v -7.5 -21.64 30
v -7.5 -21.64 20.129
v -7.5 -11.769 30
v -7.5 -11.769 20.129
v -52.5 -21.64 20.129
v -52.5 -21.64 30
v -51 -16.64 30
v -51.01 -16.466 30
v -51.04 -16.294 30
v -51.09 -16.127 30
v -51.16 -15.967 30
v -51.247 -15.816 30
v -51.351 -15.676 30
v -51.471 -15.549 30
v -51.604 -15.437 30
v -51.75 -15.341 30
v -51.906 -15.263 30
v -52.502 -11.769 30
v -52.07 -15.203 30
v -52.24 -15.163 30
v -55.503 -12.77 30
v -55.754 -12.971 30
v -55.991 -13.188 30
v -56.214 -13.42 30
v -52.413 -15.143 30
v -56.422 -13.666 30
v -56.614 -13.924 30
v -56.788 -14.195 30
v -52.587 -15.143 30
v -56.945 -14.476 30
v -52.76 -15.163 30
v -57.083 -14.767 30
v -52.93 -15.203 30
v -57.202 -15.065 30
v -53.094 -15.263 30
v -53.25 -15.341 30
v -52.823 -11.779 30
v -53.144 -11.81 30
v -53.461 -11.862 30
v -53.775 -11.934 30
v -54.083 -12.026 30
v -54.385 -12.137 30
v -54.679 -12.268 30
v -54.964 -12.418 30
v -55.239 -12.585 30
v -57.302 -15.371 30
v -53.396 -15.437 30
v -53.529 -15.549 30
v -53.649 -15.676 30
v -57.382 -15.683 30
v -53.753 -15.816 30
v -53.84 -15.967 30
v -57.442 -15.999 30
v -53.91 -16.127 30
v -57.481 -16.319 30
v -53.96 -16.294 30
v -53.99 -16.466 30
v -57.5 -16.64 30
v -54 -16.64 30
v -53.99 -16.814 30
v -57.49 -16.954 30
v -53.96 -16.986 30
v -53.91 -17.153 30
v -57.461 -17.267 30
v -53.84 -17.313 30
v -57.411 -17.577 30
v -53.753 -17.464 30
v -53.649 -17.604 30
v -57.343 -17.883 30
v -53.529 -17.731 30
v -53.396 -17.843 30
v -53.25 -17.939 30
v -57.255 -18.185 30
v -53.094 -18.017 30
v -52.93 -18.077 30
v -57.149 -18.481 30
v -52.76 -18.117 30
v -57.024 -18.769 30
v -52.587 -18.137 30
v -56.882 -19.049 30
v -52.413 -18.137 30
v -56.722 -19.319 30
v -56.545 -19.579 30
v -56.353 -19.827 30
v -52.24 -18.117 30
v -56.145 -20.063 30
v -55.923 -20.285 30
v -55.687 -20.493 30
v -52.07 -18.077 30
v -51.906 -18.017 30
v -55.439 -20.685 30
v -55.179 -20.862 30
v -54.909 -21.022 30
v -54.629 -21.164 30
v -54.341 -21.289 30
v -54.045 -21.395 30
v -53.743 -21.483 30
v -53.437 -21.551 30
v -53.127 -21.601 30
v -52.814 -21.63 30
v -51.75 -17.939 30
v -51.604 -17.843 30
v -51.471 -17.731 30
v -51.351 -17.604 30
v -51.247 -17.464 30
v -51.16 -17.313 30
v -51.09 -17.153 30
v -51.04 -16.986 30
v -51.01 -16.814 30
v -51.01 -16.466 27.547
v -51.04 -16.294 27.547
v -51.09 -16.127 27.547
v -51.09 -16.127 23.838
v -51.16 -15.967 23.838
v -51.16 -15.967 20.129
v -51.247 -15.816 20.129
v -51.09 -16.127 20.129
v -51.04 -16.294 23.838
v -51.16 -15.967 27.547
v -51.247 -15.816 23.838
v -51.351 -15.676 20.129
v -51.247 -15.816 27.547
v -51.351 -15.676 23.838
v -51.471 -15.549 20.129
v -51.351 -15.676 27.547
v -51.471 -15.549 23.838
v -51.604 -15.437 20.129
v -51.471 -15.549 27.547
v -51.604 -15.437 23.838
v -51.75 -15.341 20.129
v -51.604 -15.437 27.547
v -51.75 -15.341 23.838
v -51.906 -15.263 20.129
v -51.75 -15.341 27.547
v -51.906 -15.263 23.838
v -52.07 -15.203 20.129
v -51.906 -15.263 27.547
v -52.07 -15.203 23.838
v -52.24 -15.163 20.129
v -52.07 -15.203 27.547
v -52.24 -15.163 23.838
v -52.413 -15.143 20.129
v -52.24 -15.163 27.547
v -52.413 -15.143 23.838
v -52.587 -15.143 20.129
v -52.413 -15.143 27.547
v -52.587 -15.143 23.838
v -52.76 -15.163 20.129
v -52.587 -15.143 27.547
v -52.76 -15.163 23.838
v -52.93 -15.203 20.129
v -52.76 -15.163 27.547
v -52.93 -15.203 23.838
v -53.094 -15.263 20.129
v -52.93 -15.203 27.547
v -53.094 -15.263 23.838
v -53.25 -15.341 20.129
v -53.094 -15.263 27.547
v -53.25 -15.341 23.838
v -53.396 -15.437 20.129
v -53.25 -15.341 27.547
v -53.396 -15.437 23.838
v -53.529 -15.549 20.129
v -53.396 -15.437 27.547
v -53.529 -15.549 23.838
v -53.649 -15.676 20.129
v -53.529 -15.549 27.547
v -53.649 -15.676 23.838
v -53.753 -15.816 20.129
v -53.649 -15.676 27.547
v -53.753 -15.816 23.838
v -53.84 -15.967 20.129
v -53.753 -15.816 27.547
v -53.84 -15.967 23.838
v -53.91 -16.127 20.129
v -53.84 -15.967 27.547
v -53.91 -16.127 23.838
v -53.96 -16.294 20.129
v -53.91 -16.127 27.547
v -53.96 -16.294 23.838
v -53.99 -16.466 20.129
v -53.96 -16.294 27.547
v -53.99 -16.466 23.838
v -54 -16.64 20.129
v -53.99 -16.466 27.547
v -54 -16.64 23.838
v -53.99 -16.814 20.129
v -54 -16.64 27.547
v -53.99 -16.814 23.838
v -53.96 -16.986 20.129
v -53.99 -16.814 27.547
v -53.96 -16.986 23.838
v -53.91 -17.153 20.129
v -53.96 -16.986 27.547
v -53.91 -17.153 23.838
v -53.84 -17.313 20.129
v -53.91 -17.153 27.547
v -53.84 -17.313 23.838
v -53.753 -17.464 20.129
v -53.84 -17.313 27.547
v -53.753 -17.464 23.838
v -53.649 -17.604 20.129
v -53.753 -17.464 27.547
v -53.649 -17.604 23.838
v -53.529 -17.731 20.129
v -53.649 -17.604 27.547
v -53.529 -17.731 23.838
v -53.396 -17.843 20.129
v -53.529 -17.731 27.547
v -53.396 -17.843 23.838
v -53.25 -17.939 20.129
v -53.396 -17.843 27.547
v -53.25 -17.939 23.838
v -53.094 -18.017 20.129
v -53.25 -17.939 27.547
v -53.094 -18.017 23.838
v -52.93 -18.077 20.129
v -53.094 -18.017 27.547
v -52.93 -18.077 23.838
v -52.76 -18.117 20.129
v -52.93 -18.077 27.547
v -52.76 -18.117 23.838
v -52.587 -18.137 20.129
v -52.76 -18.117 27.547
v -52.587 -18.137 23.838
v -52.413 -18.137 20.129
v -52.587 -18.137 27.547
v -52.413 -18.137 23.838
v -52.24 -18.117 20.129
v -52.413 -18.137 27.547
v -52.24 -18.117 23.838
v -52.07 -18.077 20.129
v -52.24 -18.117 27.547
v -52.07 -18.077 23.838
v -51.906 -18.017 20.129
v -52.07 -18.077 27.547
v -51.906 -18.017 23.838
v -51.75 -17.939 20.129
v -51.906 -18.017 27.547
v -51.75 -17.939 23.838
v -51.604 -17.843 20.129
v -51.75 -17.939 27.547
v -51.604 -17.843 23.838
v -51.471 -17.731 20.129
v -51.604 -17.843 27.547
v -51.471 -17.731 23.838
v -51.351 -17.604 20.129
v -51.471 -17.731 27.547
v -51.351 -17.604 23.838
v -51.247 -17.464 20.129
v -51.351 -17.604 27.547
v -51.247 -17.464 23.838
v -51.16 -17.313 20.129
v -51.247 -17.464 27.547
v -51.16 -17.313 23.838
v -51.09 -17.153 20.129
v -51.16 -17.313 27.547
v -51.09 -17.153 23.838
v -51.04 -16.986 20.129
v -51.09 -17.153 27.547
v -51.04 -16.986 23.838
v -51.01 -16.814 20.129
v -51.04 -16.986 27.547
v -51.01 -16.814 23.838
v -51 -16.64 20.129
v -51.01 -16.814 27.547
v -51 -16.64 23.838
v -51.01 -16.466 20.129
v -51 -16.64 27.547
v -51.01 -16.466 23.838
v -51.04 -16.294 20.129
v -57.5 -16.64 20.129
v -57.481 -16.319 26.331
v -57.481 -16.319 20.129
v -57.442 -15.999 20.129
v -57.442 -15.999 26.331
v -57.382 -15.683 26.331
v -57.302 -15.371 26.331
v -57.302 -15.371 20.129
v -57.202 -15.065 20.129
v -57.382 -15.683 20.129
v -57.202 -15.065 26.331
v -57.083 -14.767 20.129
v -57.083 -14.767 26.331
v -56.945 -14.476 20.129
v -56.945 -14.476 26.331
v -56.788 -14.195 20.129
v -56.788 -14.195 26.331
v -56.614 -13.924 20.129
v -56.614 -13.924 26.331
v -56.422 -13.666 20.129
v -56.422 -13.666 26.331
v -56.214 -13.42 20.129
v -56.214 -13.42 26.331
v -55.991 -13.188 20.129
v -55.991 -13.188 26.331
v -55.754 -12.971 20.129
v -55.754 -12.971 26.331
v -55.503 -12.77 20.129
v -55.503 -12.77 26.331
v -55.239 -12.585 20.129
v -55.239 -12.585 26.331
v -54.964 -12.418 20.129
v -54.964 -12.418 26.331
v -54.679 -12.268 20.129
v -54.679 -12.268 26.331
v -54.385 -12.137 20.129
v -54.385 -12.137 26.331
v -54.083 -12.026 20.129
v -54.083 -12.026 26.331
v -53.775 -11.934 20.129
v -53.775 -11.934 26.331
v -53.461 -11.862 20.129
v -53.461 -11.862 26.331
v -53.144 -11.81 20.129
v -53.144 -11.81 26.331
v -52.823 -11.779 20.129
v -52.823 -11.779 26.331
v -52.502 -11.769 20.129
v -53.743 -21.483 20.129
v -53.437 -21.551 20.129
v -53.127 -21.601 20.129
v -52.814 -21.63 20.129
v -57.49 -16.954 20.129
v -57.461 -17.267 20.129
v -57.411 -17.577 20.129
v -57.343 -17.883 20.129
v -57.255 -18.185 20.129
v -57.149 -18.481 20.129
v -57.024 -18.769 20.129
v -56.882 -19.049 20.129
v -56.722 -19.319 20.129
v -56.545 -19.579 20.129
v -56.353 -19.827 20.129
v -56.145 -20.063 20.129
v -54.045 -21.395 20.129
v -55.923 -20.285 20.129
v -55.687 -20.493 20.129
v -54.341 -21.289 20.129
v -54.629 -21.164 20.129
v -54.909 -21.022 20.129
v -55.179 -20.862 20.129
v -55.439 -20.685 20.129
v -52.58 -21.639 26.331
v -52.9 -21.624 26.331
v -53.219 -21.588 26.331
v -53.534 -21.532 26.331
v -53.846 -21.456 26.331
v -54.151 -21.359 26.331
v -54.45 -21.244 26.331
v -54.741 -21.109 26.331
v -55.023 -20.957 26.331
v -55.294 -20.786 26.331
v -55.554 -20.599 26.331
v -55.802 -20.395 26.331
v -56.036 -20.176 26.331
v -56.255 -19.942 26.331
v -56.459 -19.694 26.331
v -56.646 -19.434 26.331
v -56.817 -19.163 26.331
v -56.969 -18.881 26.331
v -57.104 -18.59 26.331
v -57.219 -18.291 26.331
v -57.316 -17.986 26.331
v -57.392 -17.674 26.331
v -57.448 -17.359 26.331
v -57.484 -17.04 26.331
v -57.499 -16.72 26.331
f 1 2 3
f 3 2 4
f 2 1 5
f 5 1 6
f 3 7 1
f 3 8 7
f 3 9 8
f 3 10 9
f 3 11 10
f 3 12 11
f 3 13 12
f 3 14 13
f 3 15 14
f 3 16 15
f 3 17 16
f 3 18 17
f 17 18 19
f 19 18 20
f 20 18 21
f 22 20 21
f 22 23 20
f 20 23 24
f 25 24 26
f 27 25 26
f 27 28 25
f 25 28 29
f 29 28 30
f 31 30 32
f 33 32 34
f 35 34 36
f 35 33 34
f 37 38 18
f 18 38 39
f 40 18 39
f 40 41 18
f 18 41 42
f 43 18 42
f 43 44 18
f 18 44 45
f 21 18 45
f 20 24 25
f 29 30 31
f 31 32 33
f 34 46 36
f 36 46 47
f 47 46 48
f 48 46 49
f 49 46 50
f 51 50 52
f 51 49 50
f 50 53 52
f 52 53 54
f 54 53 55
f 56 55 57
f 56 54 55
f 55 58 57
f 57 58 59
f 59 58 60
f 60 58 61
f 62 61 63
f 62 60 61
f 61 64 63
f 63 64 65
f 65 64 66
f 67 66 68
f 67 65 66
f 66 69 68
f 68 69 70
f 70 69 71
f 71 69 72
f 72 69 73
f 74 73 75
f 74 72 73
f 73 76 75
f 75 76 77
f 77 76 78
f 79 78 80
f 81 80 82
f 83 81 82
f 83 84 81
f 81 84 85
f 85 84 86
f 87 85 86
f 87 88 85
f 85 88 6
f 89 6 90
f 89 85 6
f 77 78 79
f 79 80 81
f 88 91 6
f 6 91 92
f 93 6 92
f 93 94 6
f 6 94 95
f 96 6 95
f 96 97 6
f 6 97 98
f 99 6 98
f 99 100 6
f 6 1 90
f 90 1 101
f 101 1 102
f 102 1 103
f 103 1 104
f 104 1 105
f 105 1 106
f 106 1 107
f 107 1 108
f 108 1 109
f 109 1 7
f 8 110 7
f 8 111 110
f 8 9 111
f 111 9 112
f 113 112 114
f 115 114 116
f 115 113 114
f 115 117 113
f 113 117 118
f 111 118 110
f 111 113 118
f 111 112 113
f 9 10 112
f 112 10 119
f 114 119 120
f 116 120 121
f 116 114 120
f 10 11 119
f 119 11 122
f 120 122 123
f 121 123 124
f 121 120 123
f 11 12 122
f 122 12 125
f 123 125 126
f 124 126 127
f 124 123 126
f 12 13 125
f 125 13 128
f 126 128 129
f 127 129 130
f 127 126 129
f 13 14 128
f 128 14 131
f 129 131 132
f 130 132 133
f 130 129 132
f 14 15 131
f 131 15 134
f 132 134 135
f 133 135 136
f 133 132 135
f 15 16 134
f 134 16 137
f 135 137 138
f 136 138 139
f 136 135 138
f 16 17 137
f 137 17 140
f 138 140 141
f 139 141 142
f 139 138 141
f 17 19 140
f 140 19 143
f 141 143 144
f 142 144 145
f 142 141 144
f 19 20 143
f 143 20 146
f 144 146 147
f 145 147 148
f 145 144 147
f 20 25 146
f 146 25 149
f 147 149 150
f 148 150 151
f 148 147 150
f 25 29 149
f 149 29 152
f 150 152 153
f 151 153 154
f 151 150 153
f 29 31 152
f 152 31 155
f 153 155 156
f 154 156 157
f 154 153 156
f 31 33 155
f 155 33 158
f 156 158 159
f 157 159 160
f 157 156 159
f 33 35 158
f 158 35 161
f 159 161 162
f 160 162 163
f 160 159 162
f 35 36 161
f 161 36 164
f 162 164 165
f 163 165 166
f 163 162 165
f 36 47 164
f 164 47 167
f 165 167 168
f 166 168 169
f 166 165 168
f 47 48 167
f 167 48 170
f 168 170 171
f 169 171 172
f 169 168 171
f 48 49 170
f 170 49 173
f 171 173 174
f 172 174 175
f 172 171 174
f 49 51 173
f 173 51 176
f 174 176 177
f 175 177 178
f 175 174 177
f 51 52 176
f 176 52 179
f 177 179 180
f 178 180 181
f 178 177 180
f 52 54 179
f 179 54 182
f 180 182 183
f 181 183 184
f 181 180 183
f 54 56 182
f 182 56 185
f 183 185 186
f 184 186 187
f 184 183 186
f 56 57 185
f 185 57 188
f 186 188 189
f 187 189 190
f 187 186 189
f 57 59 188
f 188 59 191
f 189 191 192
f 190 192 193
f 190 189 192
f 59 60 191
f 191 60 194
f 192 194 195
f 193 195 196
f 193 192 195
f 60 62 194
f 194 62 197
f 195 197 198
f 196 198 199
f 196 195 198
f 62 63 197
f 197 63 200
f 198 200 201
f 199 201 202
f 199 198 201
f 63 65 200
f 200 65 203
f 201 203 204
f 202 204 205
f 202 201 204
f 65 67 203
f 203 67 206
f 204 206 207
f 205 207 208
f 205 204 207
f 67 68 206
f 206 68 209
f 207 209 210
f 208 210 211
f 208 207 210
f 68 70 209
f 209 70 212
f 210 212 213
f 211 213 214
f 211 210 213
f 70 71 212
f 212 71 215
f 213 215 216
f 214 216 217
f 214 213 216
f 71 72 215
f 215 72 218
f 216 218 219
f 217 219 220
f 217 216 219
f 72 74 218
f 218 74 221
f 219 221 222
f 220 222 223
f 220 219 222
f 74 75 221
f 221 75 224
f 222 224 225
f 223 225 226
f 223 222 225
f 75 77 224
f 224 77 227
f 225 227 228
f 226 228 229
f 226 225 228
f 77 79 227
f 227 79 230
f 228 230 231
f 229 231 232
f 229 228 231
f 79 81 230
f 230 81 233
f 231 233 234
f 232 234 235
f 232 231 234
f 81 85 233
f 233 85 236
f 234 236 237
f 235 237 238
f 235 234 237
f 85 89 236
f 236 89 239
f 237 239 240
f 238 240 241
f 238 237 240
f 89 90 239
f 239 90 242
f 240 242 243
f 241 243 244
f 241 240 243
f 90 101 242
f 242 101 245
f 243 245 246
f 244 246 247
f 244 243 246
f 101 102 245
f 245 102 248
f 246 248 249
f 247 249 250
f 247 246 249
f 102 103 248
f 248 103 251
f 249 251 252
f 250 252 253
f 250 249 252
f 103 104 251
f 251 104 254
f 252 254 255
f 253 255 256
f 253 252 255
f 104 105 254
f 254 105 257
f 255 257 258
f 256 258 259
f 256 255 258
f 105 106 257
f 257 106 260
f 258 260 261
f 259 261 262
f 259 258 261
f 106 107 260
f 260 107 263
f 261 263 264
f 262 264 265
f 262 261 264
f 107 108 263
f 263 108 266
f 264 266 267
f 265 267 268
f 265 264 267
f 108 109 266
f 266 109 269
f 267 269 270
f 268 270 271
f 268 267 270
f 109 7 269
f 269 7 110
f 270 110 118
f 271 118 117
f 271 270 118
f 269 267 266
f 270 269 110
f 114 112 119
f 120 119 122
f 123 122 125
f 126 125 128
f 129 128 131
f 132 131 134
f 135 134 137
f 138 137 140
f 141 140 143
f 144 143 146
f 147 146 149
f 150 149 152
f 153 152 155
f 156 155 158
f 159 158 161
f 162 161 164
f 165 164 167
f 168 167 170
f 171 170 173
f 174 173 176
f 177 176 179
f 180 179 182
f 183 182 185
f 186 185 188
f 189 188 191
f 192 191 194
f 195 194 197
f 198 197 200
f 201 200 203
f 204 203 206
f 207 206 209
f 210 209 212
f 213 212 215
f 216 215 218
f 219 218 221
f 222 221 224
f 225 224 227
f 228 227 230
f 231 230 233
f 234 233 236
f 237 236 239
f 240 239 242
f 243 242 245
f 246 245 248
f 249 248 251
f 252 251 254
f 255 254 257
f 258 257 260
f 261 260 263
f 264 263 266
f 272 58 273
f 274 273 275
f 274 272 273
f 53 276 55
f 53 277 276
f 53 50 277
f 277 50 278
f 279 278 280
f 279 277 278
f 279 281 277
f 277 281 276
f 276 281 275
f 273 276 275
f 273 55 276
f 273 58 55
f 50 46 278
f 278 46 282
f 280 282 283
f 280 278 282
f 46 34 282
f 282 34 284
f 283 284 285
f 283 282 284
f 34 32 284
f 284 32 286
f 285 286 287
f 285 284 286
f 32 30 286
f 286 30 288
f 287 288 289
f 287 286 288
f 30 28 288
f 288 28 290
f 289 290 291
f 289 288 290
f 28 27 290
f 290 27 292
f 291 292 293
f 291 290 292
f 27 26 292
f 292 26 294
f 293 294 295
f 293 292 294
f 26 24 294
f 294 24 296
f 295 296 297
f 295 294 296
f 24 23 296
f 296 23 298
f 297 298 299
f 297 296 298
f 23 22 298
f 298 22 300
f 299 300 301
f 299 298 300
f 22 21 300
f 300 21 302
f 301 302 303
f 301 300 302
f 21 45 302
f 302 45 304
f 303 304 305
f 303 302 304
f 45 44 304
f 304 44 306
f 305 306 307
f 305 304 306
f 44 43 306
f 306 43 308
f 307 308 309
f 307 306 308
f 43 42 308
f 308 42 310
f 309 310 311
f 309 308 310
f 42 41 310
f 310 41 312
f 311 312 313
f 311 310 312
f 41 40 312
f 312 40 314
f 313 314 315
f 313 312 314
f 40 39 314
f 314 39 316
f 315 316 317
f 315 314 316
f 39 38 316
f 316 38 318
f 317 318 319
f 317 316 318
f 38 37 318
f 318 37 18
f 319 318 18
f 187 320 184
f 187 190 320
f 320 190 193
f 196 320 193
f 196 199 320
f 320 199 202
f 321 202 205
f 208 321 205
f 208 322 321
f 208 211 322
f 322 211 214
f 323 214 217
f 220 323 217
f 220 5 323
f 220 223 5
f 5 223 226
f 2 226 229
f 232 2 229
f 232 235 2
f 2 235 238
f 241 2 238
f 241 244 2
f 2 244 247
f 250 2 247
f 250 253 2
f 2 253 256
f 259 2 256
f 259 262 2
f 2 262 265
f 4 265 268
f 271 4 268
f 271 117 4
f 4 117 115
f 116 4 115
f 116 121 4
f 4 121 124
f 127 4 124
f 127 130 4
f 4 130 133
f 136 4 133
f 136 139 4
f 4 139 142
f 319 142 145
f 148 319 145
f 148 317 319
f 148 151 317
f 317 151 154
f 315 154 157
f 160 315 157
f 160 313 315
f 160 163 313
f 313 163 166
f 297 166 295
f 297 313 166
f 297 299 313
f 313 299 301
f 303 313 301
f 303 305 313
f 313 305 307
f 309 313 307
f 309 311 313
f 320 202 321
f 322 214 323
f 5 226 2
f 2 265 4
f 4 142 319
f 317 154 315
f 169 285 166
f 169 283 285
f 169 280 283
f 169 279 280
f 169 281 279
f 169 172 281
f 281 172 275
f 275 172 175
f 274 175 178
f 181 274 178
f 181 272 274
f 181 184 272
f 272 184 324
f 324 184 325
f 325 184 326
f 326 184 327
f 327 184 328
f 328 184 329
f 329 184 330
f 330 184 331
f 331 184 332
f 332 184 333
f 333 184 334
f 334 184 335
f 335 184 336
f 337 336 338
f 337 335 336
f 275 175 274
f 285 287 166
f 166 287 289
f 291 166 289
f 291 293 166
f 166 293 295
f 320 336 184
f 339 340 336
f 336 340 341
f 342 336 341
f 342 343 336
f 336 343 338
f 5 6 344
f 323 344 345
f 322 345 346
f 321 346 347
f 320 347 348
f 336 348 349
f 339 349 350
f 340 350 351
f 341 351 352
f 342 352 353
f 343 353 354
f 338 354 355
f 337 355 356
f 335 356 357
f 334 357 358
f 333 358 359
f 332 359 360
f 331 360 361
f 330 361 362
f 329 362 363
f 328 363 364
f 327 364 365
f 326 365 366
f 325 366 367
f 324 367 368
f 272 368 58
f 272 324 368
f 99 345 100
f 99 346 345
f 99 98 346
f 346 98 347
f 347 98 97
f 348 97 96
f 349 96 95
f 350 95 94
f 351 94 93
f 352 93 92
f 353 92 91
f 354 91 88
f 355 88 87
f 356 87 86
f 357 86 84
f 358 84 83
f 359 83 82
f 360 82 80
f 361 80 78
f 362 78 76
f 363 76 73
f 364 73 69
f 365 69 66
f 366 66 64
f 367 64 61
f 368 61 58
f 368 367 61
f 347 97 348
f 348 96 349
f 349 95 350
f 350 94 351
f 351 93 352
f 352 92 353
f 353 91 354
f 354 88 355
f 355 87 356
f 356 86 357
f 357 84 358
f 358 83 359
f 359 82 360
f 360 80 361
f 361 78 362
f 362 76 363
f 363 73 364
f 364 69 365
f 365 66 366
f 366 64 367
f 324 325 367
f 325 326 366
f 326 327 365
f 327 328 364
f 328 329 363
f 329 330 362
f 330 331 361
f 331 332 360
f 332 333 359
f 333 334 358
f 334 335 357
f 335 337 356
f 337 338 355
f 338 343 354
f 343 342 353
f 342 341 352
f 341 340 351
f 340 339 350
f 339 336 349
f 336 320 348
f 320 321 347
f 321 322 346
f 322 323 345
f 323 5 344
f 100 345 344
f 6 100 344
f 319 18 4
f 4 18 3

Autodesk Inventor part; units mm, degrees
ref_plane "YZ Plane" through (0, 0, 0) normal (1, 0, 0) x (0, 1, 0)
ref_plane "XZ Plane" through (0, 0, 0) normal (0, 1, 0) x (-1, 0, 0)
ref_plane "XY Plane" through (0, 0, 0) normal (0, 0, 1) x (1, 0, 0)
sketch "Sketch1" plane through (0, 0, 0) normal (0, 1, 0) x (-1, 0, 0)
  line L0 (-7.5, -30) -> (7.5, -30)
  line L1 (7.5, -30) -> (7.5, 30)
  line L2 (7.5, 30) -> (-7.5, 30)
  line L3 (-7.5, 30) -> (-7.5, -30)
  line L4 (-7.5, -30) -> (7.5, 30) construction
  line L5 (7.5, -30) -> (-7.5, 30) construction
  point P0 (0, 0)
  dimension "d0" = 15
  dimension "d1" = 60
extrude "Extrusion1" add sketch "Sketch1" along normal blind 3
sketch "Sketch2" plane through (0, 3, 0) normal (0, 1, 0) x (1, 0, 0)
  line L0 (-7.5, 30) -> (-7.5, -30) projected
  line L1 (7.5, 20.5) -> (-7.5, 20.5)
  line L2 (-7.5, 20.5) -> (-7.5, -20.5)
  line L3 (-7.5, -20.5) -> (7.5, -20.5)
  line L4 (7.5, -20.5) -> (7.5, 20.5)
  line L5 (7.5, 20.5) -> (-7.5, -20.5) construction
  line L6 (-7.5, 20.5) -> (7.5, -20.5) construction
  line L7 (7.5, -20.5) -> (-7.5, -20.5)
  line L8 (-7.5, -20.5) -> (-7.5, -30)
  line L9 (-7.5, -30) -> (7.5, -30)
  line L10 (7.5, -30) -> (7.5, -20.5)
  line L11 (7.5, 30) -> (-7.5, 30) projected
  line L12 (7.5, 20.5) -> (-7.5, 20.5)
  line L13 (-7.5, 20.5) -> (-7.5, 30)
  line L14 (-7.5, 30) -> (7.5, 30)
  line L15 (7.5, 30) -> (7.5, 20.5)
  point P0 (0, 0)
  dimension "d4" = 41
extrude "Extrusion2" add sketch "Sketch2" along normal blind 19 contours L11 L15 L1 L0 | L3 L10 L9 L0
sketch "Sketch3" plane through (-7.5, 0, -30) normal (-1, 0, 0) x (0, 0, 1)
  line L0 (60, 0) -> (0, 0) projected
  line L1 (60, 0) -> (50, 0)
  line L2 (50, 0) -> (50, -21.64)
  line L3 (50, -21.64) -> (60, -21.64)
  line L4 (60, -21.64) -> (60, 0)
  point P0 (30, 0)
  dimension "d7" = 10
  dimension "d8" = 21.64
extrude "Extrusion3" add sketch "Sketch3" against normal blind 15
sketch "Sketch5" plane through (-7.5, 0, -30) normal (-1, 0, 0) x (0, 0, 1)
  line L0 (0, 0) -> (50, 0) projected
  line L1 (28.3595, 0) -> (50, -21.6405)
  line L2 (50, -21.64) -> (50, 0) projected
  line L3 (28.3595, 0) -> (58.9638, 0) construction
  line L4 (50, -21.6405) -> (50, 0)
  line L5 (50, 0) -> (28.3595, 0)
  point P0 (30, 0)
  dimension "d15" = 45
extrude "Extrusion5" add sketch "Sketch5" against normal blind 15
sketch "Sketch6" plane through (-7.5, 0, -30) normal (-1, 0, 0) x (0, 0, 1)
  line L0 (60, -21.64) -> (60, 22) projected
  line L1 (60, -21.64) -> (50.1294, -21.64)
  line L2 (50.1294, -21.64) -> (50.1294, -11.769)
  line L3 (50.1294, -11.769) -> (60, -11.769)
  line L4 (60, -11.769) -> (60, -21.64)
  point P0 (30, 0)
  dimension "d18" = 9.871
extrude "Extrusion6" add sketch "Sketch6" along normal blind 50
sketch "Sketch7" plane through (-7.5, 22, 30) normal (0, 0, 1) x (1, 0, 0)
  point P0 (7.5, -22)
fillet "Fillet1" radius 5 2 edges at (-57.5, -21.64, 25.0647) (-57.5, -11.769, 25.0647)
sketch "Sketch8" plane through (-7.5, -21.64, 20.1294) normal (0, 0, -1) x (-1, 0, 0)
  arc A0 (45, 0) -> (50, 5) centre (45, 5) ccw projected
  point P0 (-7.5, 21.64)
hole "Hole1" at (-52.5, -16.64, 20.1294) direction (0, 0, 1) diameter 3 end through all
ref_plane "Work Plane1" through (-7.5, 0, -30) normal (-1, 0, 0) x (0, 0, 1)
split "Split1" plane through (-7.5, 0, -30) removes the side toward (1, 0, 0)
properties part number "TurretServoSupport_A" material "PC/ABS Plastic"
